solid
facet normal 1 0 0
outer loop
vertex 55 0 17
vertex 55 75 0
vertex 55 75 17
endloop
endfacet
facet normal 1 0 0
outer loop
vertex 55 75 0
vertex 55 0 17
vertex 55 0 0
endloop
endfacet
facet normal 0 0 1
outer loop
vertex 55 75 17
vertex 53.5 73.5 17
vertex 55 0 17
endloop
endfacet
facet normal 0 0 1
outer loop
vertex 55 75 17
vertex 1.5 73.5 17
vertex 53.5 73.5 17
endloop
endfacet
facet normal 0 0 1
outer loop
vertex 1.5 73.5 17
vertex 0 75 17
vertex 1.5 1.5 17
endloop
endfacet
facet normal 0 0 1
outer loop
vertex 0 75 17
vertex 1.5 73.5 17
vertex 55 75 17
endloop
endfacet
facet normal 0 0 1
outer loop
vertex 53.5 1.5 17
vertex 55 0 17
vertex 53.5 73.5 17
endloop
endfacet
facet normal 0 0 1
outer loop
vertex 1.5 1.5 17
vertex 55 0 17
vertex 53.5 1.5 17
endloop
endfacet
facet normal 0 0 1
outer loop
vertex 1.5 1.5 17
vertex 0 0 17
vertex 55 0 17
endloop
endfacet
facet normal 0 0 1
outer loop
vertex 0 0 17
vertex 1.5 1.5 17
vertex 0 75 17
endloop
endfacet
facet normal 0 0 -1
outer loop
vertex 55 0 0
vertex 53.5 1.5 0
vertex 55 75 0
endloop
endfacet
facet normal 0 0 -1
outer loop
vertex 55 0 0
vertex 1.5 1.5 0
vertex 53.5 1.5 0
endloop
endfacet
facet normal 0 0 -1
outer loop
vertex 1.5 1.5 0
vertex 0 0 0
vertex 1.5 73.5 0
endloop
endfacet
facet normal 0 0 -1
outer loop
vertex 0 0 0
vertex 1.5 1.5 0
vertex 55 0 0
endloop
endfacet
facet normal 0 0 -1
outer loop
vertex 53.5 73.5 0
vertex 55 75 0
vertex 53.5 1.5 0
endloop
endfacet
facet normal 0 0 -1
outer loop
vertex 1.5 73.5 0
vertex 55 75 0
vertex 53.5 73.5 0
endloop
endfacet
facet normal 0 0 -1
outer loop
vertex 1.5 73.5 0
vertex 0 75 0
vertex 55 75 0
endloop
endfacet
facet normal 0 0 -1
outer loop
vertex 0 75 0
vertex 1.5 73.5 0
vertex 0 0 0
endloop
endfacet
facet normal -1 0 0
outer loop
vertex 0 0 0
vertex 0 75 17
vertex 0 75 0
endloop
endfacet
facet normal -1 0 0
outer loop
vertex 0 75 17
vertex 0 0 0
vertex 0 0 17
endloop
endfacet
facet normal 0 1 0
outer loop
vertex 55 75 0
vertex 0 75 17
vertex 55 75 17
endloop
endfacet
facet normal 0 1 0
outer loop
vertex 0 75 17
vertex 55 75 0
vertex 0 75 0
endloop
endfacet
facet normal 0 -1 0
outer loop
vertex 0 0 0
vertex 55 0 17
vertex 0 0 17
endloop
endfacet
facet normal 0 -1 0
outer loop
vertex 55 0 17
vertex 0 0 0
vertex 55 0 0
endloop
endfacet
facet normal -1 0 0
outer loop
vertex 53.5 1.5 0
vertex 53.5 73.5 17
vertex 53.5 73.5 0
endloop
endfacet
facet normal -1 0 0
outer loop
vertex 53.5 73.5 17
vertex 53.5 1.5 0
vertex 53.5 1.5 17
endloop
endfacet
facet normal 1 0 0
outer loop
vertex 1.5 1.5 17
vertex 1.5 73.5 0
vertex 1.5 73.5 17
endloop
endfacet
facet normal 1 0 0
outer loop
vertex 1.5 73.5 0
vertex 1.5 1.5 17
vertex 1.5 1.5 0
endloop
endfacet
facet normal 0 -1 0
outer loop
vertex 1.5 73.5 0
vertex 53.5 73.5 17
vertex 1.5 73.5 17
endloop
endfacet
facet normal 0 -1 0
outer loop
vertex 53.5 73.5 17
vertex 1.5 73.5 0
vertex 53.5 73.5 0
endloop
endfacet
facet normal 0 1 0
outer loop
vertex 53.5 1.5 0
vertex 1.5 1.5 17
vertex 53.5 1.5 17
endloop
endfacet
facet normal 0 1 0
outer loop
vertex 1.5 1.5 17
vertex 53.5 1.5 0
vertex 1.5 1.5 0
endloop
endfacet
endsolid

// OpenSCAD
include <boardgame_insert_toolkit_lib.bill.scad>;

// determines whether lids are output.
g_b_print_lid = true;

// determines whether boxes are output.
g_b_print_box = false; 

// Focus on one box
g_isolated_print_box = ""; 

// Used to visualize how all of the boxes fit together. 
g_b_visualization = false;          
        
// this is the outer wall thickness. 
//Default = 1.5mm
g_wall_thickness = 1.5;

// The tolerance value is extra space put between planes of the lid and box that fit together.
// Increase the tolerance to loosen the fit and decrease it to tighten it.
//
// Note that the tolerance is applied exclusively to the lid.
// So if the lid is too tight or too loose, change this value ( up for looser fit, down for tighter fit ) and 
// you only need to reprint the lid.
// 
// The exception is the stackable box, where the bottom of the box is the lid of the box below,
// in which case the tolerance also affects that box bottom.
//
g_tolerance = 0.15;

// This adjusts the position of the lid detents downward. 
// The larger the value, the bigger the gap between the lid and the box.
g_tolerance_detents_pos = 0.1;

data =
[  

    [   "bottom spacer",
        [
            [ BOX_SIZE_XYZ,[55, 75, 17] ],
            [ TYPE, SPACER]
                          
        ]
    ],
];


MakeAll();
